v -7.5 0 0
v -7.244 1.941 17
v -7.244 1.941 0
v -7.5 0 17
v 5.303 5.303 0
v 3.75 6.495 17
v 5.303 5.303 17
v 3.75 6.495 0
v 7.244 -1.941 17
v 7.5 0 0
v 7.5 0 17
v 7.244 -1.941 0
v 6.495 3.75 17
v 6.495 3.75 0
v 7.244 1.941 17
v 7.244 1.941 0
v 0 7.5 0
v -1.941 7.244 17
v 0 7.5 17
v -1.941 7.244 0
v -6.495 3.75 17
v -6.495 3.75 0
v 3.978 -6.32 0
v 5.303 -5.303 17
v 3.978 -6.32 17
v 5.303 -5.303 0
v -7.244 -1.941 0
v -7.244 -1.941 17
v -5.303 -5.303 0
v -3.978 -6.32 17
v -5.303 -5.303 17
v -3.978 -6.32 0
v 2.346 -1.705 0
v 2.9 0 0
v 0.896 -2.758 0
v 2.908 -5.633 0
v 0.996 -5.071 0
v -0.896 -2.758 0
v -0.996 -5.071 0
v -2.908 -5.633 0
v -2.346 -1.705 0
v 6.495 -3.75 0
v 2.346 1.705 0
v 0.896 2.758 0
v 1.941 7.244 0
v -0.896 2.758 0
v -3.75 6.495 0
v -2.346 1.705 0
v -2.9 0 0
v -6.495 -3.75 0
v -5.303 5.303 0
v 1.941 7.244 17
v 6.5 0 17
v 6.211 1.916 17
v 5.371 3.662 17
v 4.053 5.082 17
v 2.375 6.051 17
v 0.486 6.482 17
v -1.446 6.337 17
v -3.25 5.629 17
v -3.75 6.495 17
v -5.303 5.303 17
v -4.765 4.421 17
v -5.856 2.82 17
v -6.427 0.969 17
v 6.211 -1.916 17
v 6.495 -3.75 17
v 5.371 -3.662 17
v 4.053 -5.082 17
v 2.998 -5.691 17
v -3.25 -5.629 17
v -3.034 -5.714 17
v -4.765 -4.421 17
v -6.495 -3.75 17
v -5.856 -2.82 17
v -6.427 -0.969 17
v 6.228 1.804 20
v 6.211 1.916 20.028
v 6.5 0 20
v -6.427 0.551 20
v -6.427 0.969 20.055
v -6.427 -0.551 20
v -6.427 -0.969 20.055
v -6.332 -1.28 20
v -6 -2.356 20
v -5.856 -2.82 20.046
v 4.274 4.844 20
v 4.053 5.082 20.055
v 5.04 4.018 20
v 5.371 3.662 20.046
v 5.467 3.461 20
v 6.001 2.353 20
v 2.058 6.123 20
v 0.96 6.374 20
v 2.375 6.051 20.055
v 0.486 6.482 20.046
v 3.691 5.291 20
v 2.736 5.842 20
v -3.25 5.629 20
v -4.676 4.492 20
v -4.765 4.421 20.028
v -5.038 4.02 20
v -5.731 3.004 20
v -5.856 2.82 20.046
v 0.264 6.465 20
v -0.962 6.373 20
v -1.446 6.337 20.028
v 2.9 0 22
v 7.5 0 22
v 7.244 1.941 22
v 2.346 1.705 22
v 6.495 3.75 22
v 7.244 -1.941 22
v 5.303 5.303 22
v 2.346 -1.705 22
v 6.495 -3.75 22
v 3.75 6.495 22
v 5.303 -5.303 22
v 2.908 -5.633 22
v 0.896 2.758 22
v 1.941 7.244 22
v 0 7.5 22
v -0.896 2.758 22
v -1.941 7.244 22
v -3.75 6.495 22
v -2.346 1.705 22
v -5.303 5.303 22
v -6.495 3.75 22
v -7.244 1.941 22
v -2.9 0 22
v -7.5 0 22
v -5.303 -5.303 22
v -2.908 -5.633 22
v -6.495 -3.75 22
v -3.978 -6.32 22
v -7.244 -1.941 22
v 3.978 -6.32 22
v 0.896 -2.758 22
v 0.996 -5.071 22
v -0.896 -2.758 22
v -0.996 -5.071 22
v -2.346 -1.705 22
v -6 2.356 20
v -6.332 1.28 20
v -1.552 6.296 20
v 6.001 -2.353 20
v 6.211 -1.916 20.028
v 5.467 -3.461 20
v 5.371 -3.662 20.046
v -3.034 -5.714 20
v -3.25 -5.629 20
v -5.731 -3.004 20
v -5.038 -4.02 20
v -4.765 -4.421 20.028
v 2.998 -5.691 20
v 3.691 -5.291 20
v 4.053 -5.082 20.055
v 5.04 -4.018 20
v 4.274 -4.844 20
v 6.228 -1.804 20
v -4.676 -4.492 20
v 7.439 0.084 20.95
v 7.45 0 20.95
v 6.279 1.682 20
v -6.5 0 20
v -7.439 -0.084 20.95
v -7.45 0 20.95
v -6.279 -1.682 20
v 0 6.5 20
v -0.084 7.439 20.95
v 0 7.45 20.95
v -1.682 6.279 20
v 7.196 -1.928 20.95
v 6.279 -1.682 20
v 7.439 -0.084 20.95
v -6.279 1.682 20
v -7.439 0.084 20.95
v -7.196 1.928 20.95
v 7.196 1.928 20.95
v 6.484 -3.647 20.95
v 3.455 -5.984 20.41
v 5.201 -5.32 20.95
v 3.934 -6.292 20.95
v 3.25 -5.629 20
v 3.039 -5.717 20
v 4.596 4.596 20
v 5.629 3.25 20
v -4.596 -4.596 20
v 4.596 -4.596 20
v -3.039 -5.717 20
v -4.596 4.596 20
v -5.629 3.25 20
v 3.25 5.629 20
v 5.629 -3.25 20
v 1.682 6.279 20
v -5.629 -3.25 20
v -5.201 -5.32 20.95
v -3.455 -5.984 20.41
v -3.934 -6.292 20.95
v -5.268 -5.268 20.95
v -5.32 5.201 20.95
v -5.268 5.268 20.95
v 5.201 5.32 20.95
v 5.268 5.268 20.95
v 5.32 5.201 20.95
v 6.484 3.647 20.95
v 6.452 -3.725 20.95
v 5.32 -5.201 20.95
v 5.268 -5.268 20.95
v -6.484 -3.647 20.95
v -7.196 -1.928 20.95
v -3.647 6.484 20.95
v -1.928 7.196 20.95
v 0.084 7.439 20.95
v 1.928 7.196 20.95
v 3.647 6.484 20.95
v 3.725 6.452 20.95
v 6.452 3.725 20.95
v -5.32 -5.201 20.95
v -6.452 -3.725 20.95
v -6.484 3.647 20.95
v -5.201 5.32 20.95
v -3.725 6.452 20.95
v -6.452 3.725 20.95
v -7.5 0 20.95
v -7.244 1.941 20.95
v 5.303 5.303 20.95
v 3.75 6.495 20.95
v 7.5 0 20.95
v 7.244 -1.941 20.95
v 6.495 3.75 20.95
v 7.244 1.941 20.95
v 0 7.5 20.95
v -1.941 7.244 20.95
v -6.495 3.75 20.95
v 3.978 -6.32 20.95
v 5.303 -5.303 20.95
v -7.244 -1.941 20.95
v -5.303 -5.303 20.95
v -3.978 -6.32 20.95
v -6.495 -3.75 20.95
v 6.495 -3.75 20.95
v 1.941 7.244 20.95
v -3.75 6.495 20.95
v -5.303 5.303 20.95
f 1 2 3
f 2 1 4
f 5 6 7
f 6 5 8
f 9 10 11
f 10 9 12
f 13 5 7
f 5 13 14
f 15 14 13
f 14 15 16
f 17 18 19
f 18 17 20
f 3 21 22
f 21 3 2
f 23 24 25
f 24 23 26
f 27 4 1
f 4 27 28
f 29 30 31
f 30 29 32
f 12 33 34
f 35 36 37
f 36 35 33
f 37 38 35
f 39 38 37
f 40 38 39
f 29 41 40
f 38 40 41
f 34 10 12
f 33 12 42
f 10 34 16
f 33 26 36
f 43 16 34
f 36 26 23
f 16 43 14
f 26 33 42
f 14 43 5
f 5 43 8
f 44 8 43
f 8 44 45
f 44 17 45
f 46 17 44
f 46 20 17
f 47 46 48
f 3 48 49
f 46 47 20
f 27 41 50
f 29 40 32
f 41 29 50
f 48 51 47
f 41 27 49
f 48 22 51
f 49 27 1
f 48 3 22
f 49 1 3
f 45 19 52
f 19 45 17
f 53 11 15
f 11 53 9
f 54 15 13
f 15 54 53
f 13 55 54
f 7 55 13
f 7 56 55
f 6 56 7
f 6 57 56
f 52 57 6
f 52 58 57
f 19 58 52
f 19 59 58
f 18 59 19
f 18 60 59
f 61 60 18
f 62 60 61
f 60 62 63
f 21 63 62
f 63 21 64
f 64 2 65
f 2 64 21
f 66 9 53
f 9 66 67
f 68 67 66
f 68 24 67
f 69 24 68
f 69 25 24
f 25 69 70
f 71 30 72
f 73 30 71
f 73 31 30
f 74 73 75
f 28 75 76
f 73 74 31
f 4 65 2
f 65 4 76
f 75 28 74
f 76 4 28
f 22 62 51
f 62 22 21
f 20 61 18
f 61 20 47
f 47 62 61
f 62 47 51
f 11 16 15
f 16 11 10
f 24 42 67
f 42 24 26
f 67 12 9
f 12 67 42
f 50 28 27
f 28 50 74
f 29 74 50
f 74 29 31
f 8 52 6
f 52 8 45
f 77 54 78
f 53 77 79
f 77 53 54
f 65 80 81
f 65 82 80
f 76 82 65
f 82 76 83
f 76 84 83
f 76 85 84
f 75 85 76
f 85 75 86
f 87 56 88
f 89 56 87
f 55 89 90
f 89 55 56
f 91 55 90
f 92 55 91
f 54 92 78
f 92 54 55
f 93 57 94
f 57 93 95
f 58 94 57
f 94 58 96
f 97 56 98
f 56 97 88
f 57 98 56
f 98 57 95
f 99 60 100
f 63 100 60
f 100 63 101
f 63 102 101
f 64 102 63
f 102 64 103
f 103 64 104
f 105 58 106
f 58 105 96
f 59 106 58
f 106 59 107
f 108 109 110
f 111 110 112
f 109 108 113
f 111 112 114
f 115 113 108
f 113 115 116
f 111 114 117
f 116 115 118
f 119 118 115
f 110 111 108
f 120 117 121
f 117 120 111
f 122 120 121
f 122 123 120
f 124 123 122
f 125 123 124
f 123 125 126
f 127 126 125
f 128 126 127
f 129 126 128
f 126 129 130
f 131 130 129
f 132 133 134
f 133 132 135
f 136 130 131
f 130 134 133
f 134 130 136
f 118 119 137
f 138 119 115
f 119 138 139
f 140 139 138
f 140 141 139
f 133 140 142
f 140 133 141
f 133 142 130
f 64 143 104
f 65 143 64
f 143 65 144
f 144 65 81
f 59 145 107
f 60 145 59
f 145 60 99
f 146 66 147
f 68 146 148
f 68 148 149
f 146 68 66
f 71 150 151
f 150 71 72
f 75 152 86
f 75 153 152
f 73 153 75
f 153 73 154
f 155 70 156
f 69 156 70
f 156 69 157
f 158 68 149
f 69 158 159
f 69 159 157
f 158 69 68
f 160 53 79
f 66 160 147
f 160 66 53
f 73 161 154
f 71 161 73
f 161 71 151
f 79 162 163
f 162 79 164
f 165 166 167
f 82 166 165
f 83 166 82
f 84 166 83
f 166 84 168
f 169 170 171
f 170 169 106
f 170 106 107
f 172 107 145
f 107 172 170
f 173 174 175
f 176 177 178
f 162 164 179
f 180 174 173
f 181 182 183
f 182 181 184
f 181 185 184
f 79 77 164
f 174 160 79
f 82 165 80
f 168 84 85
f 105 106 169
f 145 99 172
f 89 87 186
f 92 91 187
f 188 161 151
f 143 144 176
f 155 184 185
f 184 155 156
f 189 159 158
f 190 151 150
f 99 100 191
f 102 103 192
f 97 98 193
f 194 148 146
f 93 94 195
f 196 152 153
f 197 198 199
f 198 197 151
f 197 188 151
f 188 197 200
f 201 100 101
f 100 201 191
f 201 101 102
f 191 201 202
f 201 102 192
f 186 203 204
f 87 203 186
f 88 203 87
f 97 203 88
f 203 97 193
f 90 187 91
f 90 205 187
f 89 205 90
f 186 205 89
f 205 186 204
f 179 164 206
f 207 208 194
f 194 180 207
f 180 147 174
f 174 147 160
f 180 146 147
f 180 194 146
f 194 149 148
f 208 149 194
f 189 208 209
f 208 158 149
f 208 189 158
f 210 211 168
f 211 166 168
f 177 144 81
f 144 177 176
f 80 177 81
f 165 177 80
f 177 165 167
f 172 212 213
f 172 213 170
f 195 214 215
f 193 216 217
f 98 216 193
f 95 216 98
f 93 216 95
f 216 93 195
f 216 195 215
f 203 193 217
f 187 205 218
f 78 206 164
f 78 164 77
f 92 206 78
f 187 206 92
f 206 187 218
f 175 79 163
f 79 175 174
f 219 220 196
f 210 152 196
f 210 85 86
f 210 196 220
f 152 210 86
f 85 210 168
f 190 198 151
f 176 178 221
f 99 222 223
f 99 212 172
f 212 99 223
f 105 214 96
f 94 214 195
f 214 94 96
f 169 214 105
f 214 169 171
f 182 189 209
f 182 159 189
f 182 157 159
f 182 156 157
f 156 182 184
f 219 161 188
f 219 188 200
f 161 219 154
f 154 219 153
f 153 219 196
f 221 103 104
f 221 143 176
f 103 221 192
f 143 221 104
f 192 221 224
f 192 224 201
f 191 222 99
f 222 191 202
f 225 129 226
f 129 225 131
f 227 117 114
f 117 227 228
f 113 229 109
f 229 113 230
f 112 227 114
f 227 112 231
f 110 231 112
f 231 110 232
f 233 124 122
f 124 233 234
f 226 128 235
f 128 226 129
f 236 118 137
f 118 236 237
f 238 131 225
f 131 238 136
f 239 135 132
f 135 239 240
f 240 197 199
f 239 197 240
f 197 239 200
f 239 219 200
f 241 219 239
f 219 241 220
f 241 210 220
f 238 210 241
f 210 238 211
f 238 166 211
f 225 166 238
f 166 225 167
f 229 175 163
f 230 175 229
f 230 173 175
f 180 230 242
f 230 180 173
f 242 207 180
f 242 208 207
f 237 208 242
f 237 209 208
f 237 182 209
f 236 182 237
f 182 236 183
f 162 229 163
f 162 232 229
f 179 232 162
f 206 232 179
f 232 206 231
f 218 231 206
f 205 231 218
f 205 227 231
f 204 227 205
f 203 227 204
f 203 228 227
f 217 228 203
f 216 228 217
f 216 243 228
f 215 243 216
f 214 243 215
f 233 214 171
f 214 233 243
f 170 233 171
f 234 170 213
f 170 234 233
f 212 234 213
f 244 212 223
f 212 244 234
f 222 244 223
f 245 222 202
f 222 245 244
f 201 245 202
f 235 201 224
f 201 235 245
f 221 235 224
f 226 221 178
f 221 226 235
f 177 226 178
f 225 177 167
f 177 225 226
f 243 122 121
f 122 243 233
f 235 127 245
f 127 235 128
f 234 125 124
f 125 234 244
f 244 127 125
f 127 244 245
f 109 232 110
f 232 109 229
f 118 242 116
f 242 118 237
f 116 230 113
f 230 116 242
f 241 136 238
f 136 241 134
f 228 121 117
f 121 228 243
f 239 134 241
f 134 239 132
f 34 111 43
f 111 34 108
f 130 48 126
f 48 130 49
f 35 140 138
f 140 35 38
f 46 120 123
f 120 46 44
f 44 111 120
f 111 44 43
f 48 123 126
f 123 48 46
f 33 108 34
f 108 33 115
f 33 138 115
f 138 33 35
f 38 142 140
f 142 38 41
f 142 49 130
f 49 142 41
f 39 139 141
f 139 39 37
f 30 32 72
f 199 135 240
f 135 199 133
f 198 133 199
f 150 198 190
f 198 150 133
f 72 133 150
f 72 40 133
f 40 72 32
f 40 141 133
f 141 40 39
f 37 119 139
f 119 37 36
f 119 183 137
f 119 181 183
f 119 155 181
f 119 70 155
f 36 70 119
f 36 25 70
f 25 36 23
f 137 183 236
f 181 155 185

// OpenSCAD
use <utilities.scad>;

d=0.05;

difference(){
    union(){
        cylinder(r=7.5,h=17); //body of mount, with cable tie groove
        cylinder(r=6.5,h=22);
        translate([0,0,20]) cylinder(r1=6.5,r2=7.5,h=1);
        translate([0,0,21-d]) cylinder(r=7.5,h=1+d);
    }
    cylinder(r=2.9,h=999,center=true); //M6 mounting bolt for mudguard
    translate([0,3-8-7,0]) cylinder(r=7,h=999,center=true);
}
